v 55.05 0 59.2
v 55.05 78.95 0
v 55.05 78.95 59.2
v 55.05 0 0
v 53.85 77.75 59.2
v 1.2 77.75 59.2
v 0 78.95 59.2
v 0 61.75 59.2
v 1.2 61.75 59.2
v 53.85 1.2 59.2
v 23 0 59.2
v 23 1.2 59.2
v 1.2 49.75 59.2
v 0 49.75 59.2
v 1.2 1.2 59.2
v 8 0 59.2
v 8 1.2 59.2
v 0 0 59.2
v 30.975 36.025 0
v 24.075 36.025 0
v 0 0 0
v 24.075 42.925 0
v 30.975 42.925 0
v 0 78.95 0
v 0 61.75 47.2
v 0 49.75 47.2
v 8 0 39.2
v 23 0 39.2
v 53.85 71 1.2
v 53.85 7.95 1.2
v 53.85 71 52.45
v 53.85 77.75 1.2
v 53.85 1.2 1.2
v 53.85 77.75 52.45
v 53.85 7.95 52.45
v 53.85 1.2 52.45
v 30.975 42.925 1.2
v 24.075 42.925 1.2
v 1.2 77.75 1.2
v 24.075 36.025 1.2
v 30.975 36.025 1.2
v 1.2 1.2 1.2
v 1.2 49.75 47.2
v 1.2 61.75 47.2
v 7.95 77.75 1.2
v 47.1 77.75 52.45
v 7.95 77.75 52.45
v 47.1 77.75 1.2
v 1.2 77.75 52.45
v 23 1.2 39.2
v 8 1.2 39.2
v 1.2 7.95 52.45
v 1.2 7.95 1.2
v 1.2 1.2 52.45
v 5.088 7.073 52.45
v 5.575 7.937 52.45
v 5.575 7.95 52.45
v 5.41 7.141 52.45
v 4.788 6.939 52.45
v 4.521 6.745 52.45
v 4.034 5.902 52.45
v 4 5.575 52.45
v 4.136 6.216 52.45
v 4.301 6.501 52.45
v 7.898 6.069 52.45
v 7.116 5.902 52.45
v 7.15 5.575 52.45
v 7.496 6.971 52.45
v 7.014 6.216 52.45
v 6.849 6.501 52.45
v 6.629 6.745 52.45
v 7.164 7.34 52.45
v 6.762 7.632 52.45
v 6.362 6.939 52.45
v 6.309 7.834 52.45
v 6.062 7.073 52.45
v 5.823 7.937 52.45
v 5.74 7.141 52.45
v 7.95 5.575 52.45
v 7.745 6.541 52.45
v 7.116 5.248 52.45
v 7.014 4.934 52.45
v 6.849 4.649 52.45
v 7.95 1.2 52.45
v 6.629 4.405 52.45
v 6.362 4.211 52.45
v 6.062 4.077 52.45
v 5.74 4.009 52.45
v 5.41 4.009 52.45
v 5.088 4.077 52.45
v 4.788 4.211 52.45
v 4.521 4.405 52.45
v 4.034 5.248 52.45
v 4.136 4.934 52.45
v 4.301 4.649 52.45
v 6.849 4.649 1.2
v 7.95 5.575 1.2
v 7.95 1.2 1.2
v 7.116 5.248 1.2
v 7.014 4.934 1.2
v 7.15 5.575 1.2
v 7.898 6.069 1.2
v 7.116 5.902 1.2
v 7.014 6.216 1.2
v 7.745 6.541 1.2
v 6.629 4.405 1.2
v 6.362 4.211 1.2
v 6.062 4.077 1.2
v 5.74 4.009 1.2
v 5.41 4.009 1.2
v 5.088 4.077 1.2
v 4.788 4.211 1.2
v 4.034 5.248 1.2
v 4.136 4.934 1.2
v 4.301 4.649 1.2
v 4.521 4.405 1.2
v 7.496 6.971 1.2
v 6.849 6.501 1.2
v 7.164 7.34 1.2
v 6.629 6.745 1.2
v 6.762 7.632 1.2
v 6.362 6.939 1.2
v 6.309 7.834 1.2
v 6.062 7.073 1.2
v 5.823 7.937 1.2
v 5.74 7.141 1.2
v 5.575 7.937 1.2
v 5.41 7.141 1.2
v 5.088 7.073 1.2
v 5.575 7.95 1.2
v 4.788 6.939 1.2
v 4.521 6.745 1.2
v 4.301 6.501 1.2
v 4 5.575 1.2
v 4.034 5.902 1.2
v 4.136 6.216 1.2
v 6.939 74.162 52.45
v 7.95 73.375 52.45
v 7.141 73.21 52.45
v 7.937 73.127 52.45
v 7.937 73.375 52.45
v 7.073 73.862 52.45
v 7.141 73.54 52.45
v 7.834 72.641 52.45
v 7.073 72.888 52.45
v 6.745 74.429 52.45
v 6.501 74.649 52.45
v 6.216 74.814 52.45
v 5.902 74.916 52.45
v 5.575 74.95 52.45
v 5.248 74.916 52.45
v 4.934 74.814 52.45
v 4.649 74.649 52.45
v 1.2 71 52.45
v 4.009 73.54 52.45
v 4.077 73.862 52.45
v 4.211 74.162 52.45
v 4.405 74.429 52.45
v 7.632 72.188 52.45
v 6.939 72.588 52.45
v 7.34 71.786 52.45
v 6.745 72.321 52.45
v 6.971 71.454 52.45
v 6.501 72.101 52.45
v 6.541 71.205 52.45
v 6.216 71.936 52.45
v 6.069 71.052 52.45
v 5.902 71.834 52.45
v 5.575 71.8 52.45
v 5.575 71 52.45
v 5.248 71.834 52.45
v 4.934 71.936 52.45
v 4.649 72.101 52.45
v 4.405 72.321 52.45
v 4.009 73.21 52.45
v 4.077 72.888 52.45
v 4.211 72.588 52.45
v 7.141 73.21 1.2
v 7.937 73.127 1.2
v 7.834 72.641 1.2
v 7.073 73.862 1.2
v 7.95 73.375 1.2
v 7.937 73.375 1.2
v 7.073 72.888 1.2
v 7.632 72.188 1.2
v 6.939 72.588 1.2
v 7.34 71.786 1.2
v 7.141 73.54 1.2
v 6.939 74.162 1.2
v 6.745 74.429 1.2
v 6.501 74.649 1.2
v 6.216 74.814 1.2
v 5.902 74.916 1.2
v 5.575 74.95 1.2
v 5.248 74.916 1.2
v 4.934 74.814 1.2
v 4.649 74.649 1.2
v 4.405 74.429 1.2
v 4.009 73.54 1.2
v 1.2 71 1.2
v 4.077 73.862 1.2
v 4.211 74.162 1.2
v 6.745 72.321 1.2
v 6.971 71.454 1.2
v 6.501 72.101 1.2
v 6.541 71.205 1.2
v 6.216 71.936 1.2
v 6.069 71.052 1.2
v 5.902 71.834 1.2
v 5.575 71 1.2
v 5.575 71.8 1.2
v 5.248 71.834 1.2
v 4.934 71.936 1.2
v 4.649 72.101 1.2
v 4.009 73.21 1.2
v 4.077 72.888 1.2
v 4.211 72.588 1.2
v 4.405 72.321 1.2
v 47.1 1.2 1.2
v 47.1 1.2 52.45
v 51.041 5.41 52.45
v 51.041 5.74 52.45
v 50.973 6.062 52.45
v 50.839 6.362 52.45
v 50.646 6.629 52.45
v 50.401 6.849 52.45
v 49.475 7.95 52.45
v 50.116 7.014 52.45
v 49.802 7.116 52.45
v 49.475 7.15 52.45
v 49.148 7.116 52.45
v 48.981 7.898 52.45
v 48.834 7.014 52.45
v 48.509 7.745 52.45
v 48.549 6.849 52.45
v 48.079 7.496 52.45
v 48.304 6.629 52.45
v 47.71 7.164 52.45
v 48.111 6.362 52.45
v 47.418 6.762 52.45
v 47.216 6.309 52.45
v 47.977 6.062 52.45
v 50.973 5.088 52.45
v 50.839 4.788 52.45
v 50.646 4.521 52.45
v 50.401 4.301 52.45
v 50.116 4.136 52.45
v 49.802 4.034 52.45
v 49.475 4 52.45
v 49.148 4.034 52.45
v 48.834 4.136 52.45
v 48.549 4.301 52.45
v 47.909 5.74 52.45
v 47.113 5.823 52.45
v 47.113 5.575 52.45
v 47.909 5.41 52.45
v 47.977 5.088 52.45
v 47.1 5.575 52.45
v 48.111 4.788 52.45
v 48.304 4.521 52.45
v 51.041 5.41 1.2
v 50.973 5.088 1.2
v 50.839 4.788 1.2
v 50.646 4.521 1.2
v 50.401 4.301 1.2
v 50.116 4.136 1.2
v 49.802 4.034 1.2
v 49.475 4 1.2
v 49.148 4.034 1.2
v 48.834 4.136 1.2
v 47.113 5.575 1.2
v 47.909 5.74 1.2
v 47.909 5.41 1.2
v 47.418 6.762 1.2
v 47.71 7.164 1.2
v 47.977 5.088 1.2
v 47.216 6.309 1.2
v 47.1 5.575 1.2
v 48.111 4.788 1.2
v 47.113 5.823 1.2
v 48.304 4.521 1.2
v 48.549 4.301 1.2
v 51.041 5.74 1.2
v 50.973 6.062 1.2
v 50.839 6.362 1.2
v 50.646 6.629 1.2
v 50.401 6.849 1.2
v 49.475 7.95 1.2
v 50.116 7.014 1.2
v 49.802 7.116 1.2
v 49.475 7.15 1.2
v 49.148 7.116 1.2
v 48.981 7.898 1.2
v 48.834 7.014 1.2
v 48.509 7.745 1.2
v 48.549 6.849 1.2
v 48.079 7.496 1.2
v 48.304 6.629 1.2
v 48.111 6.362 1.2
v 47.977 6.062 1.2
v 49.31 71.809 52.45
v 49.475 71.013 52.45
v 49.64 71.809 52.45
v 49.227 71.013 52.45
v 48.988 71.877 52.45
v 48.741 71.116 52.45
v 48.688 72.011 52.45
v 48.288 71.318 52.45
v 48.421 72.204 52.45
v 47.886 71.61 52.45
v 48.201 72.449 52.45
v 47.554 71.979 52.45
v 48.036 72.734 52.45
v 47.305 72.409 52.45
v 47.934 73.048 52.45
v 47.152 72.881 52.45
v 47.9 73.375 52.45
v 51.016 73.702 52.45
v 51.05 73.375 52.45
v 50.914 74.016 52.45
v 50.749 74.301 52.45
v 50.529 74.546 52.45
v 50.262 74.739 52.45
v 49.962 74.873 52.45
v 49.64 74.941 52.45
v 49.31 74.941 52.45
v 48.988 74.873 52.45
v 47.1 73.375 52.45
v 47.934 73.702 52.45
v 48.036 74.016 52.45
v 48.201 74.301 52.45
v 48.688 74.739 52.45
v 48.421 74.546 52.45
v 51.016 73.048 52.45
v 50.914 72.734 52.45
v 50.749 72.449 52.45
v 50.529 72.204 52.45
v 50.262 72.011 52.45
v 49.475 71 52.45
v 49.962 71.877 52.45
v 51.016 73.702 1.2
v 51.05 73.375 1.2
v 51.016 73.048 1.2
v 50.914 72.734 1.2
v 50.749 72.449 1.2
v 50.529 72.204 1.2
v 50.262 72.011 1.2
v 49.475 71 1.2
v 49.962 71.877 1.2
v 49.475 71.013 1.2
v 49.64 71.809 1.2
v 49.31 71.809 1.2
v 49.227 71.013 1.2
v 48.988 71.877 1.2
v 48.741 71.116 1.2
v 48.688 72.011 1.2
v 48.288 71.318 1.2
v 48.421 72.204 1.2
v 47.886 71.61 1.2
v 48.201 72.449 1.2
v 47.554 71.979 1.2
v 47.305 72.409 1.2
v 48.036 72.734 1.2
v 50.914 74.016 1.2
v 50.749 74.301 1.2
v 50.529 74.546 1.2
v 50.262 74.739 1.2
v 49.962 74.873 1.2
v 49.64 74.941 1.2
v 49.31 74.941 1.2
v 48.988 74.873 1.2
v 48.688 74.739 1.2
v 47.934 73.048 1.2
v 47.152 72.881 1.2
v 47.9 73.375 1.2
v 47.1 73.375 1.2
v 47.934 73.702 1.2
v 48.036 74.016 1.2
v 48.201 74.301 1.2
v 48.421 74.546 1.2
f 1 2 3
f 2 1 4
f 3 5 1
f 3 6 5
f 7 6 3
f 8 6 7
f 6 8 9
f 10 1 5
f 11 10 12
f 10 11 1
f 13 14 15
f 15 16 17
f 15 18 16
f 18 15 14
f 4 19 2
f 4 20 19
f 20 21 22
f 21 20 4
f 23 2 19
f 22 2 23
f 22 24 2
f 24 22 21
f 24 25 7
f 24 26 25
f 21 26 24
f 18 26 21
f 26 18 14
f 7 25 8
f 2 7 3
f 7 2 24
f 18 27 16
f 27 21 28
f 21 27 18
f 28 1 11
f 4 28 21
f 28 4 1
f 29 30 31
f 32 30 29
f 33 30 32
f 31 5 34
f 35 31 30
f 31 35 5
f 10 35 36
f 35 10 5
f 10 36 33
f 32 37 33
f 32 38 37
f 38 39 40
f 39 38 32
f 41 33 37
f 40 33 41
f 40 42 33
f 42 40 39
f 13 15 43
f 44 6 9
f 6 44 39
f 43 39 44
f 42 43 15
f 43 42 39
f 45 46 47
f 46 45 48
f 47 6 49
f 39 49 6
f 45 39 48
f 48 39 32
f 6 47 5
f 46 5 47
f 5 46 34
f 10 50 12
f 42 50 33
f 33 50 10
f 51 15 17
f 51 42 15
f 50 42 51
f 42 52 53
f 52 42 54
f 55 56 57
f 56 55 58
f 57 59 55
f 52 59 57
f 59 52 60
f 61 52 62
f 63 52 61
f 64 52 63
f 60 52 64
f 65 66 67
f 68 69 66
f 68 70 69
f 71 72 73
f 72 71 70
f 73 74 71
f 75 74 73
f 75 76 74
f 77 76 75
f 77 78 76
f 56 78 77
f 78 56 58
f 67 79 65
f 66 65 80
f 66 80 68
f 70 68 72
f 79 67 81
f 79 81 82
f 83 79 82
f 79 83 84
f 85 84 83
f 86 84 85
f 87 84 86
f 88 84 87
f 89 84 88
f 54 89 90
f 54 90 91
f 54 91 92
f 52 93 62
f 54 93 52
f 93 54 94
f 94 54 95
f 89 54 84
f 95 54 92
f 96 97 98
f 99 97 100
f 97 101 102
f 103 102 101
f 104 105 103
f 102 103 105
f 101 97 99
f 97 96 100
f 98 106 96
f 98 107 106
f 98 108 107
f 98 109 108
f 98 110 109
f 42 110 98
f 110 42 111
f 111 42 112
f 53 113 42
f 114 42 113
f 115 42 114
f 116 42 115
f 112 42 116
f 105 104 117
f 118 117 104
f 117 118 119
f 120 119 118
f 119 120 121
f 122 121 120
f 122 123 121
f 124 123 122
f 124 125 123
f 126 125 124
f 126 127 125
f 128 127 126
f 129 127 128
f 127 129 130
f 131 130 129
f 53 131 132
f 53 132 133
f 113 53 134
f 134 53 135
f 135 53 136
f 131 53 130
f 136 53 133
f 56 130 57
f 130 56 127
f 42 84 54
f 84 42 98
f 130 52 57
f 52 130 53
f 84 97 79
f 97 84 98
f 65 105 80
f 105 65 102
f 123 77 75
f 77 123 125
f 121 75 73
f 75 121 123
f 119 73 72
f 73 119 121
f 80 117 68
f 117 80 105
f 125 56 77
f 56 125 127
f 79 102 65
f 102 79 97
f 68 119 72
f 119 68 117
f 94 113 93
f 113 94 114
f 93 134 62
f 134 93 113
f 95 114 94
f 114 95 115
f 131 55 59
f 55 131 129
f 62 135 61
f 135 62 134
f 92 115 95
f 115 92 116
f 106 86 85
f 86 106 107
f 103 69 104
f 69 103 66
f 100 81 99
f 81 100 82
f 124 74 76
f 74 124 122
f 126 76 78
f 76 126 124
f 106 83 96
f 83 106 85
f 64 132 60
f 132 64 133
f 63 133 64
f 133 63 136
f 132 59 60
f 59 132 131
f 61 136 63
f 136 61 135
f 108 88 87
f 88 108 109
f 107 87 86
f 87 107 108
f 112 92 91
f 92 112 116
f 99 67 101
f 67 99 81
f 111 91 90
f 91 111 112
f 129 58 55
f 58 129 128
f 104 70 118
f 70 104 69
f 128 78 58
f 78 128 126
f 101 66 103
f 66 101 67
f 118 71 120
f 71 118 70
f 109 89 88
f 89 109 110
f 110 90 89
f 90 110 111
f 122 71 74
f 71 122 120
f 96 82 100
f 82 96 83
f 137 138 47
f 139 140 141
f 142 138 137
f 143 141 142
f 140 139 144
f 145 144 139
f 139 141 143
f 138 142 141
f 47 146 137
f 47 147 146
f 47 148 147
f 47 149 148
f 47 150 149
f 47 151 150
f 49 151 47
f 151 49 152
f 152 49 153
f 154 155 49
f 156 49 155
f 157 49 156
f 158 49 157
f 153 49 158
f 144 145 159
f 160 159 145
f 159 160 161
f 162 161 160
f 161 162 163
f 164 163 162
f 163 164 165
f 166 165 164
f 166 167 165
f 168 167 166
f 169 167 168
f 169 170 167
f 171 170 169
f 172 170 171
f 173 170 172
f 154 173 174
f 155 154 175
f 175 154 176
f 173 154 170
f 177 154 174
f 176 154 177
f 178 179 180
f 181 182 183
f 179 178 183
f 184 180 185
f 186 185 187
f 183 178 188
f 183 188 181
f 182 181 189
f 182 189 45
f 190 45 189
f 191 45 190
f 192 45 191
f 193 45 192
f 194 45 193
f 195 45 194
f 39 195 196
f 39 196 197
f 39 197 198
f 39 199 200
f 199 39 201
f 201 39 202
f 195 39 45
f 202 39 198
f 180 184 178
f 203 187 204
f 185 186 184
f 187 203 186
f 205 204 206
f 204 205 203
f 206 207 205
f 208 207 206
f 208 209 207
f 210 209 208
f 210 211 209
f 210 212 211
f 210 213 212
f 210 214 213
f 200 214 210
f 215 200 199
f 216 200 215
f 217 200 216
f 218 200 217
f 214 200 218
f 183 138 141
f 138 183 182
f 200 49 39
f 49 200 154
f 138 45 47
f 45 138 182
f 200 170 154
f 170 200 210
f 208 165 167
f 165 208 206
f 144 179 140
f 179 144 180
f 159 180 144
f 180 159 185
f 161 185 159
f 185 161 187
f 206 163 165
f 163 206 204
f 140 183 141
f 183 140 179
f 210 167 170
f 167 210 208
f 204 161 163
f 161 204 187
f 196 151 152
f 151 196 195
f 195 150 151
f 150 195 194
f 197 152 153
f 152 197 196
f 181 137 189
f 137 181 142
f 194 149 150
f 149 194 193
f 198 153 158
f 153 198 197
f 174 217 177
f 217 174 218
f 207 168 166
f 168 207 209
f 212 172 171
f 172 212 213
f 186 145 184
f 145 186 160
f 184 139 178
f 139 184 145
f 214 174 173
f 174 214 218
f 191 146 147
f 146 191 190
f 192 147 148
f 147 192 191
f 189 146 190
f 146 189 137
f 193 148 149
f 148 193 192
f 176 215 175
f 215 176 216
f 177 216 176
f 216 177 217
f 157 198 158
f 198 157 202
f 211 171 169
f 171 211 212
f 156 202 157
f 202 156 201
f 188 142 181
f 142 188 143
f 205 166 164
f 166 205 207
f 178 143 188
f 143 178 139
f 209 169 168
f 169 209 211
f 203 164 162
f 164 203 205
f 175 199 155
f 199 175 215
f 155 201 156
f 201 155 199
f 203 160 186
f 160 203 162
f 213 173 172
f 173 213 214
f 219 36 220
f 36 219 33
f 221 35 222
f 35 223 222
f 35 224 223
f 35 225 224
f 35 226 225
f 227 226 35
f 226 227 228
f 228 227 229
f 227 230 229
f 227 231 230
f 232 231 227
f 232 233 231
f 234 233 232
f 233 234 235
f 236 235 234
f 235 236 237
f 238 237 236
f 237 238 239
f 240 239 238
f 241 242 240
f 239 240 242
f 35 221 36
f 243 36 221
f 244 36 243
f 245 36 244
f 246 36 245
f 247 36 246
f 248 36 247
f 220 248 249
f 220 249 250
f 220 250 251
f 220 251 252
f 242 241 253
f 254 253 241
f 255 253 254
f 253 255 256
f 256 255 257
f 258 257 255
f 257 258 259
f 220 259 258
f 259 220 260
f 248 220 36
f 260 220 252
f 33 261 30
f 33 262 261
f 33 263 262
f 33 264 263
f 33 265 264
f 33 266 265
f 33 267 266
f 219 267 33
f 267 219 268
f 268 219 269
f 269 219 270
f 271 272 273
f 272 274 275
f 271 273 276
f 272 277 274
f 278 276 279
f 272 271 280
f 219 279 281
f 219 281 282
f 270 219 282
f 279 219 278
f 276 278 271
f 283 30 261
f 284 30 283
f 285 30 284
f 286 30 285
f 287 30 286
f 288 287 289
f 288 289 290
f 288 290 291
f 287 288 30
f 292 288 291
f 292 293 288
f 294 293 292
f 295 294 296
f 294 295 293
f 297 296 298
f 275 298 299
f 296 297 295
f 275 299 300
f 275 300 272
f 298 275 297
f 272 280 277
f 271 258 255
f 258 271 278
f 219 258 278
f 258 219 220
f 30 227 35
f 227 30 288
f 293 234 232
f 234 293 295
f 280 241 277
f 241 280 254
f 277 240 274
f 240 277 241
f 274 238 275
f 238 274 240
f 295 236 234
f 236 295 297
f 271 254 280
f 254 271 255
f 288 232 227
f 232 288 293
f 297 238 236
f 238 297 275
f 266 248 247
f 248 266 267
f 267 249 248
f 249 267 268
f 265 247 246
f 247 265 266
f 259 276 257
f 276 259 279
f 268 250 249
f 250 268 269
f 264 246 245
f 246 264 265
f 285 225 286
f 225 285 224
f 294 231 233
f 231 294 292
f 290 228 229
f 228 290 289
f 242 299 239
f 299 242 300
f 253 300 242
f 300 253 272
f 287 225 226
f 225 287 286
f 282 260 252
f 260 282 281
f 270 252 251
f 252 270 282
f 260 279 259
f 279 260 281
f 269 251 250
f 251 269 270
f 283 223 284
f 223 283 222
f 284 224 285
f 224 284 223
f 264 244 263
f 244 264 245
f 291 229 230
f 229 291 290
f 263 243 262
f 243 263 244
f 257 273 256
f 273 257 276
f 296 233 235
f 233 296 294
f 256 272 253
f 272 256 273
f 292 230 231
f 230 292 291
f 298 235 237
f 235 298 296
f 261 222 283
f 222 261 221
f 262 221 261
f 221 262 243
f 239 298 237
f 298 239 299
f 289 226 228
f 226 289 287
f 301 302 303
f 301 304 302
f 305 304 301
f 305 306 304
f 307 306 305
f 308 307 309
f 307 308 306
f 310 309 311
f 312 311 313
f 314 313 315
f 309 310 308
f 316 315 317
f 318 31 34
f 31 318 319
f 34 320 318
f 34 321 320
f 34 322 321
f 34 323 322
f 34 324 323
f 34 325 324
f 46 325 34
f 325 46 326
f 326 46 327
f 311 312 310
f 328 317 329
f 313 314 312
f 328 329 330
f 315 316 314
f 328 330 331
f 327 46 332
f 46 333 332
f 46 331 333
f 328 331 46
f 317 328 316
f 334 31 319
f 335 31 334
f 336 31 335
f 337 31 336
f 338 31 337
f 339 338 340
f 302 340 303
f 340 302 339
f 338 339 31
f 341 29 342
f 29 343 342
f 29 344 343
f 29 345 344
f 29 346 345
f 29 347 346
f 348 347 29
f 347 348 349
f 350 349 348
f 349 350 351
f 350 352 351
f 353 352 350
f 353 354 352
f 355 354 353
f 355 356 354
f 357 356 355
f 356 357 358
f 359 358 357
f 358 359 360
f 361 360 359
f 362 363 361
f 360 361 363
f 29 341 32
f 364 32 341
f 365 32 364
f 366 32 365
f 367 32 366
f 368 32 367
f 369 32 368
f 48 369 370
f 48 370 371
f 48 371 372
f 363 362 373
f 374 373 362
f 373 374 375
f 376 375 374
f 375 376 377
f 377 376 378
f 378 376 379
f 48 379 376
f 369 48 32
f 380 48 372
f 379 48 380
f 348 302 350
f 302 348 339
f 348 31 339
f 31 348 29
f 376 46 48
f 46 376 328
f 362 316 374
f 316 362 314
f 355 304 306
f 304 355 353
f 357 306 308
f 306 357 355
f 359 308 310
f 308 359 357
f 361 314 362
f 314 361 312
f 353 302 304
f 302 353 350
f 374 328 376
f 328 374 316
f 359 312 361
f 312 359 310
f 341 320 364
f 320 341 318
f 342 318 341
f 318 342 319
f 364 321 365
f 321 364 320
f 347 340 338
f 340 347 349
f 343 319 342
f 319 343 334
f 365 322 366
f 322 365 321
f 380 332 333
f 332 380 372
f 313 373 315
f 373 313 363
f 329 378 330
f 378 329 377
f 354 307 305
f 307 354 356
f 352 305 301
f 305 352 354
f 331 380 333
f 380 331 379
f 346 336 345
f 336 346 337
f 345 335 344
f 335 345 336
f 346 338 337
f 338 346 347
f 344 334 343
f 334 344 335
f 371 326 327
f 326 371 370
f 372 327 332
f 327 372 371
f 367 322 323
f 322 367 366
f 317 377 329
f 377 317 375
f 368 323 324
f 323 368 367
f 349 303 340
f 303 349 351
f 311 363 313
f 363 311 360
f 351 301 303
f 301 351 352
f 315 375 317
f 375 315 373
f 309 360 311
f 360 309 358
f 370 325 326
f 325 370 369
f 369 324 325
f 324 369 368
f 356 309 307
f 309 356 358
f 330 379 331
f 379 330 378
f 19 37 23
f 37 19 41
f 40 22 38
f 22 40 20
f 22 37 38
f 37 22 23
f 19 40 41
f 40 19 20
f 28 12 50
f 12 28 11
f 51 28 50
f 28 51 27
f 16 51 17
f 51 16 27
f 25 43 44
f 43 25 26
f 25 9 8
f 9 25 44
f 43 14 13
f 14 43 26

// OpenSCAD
//------------------------------------------------
// 2 - body of Xmas tree controller box
//
// author: Alessandro Paganelli 
// e-mail: alessandro.paganelli@gmail.com
// github: https://github.com/allep
// license: GPL-3.0-or-later
// 
// Description
// This is designed to be used with 70x50mm
// prototyping boards.
//
// All sizes are expressed in mm.
//------------------------------------------------

// Set face number to a sufficiently high number.
$fn = 30;

//------------------------------------------------
// Debug mode
// Set DEBUG_MODE to 1 to simulate the actual 
// screw positions, to validate the design.
DEBUG_MODE = 0;

//------------------------------------------------
// Variables

//------------------------------------------------
// Pockets
// Let's increase a little bit pocket sizs in order 
// to allow for easier simulation.
POCKET_TOLERANCE = 0.1;

//------------------------------------------------
// Box

// Inner sizes: outer size will be increased by
// the wall thickness.
Z_LEN = 58;

WALL_THICKNESS = 1.2;
BASE_THICKNESS = 1.2;

CYLINDER_THICKNESS = 0.8;

// For M3 screws it must be 1.5 mm + 5% tolerance
CYLINDER_RADIUS = 1.575;

// tolerances
CYLINDER_GAP = 2.0;

//------------------------------------------------
// Board size
BOARD_THICKNESS = 2.0;
BOARD_HEIGHT = 6.75; // including clearence

// Prototyping board size: 50*75mm
SCREW_DISTANCE_Y = 67.8;
SCREW_DISTANCE_X = 43.9;

// Voltage supply port
X_VSUPPLY_DISP = 8;
Z_VSUPPLY_HEIGHT = 20;
X_VSUPPLY_LEN = 15;

// LED strip port
Y_LED_DISP = 16;
Y_LED_LEN = 12;
Z_LED_HEIGHT = 12;

//------------------------------------------------
// Button

X_BUTTON_LEN = 6.4;
Y_BUTTON_LEN = 6.4;
X_BUTTON_GAP = 0.25;
Y_BUTTON_GAP = 0.25;

//------------------------------------------------
// Screw sizes (M3)

SCREW_RADIUS = 1.5;
Z_SCREW_LEN = 70; // used just for simulation

//------------------------------------------------
// Modules

module corner(radius, height, thickness, gap, position, plane_rotation) {
    ext_r = radius + thickness;
    
    translate(position)
    rotate([0, 0, plane_rotation])
    difference() {
        union() {
            cube([ext_r + gap, ext_r + gap, height]);
            translate([0, - ext_r, 0])
            cube([ext_r + gap, ext_r, height]);
            translate([- ext_r, 0, 0])
            cube([ext_r, ext_r + gap, height]);
            cylinder(h = height, r = ext_r);
        }
        cylinder(h = height + POCKET_TOLERANCE, r = radius);
    }
}

//------------------------------------------------
// Actual script

// First compute sizes

x_len_inner = SCREW_DISTANCE_X + 2*(CYLINDER_RADIUS + CYLINDER_THICKNESS + CYLINDER_GAP);
y_len_inner = SCREW_DISTANCE_Y + 2*(CYLINDER_RADIUS + CYLINDER_THICKNESS + CYLINDER_GAP);
x_len_outer = x_len_inner + 2*WALL_THICKNESS;
y_len_outer = y_len_inner + 2*WALL_THICKNESS;

echo("Computed X len = ", x_len_outer, " and Y len = ", y_len_outer);

// actual box
difference() {
    // the box
    difference() {
        cube([x_len_outer, y_len_outer, Z_LEN + BASE_THICKNESS]);
        translate([WALL_THICKNESS, WALL_THICKNESS, BASE_THICKNESS])
        cube([x_len_inner, y_len_inner, Z_LEN + POCKET_TOLERANCE]);
    }
    // the button hole
    translate([x_len_outer/2 - X_BUTTON_LEN/2 - X_BUTTON_GAP, y_len_outer/2 - Y_BUTTON_LEN/2 - Y_BUTTON_GAP, -POCKET_TOLERANCE])
    cube([X_BUTTON_LEN + 2*X_BUTTON_GAP, Y_BUTTON_LEN + 2*Y_BUTTON_GAP, BASE_THICKNESS + 2*POCKET_TOLERANCE]);
    
    // the voltage supply hole
    translate([X_VSUPPLY_DISP, -POCKET_TOLERANCE, Z_LEN + BASE_THICKNESS - Z_VSUPPLY_HEIGHT])
    cube([X_VSUPPLY_LEN, WALL_THICKNESS + 2*POCKET_TOLERANCE, Z_VSUPPLY_HEIGHT + POCKET_TOLERANCE]);
    
    // the led strip hole
    translate([-POCKET_TOLERANCE, y_len_outer - WALL_THICKNESS - Y_LED_DISP - Y_LED_LEN, Z_LEN + BASE_THICKNESS - Z_LED_HEIGHT])
    cube([WALL_THICKNESS + 2*POCKET_TOLERANCE, Y_LED_LEN, Z_LED_HEIGHT + POCKET_TOLERANCE]);    
}

// screw holes
shift_x1 = CYLINDER_GAP + CYLINDER_THICKNESS + CYLINDER_RADIUS + WALL_THICKNESS;
shift_y1 = CYLINDER_GAP + CYLINDER_THICKNESS + CYLINDER_RADIUS + WALL_THICKNESS;
corner(CYLINDER_RADIUS, Z_LEN-BOARD_HEIGHT, CYLINDER_THICKNESS, CYLINDER_GAP, [shift_x1, shift_y1, BASE_THICKNESS], 180);

shift_x2 = CYLINDER_GAP + CYLINDER_THICKNESS + CYLINDER_RADIUS + WALL_THICKNESS;
shift_y2 = CYLINDER_GAP + CYLINDER_THICKNESS + CYLINDER_RADIUS + SCREW_DISTANCE_Y + WALL_THICKNESS;
corner(CYLINDER_RADIUS, Z_LEN-BOARD_HEIGHT, CYLINDER_THICKNESS, CYLINDER_GAP, [shift_x2, shift_y2, BASE_THICKNESS], 90);

shift_x3 = CYLINDER_GAP + CYLINDER_THICKNESS + CYLINDER_RADIUS + SCREW_DISTANCE_X + WALL_THICKNESS;
shift_y3 = CYLINDER_GAP + CYLINDER_THICKNESS + CYLINDER_RADIUS + WALL_THICKNESS;
corner(CYLINDER_RADIUS, Z_LEN-BOARD_HEIGHT, CYLINDER_THICKNESS, CYLINDER_GAP, [shift_x3, shift_y3, BASE_THICKNESS], 270);

shift_x4 = CYLINDER_GAP + CYLINDER_THICKNESS + CYLINDER_RADIUS + SCREW_DISTANCE_X + WALL_THICKNESS;
shift_y4 = CYLINDER_GAP + CYLINDER_THICKNESS + CYLINDER_RADIUS + SCREW_DISTANCE_Y + WALL_THICKNESS;
corner(CYLINDER_RADIUS, Z_LEN-BOARD_HEIGHT, CYLINDER_THICKNESS, CYLINDER_GAP, [shift_x4, shift_y4, BASE_THICKNESS], 0);

//------------------------------------------------
// Size check
// Draw a simulated version of 4 screws in the right 
// positions, in order to validate the design.

if (DEBUG_MODE == 1) {
    screw1_x = WALL_THICKNESS + CYLINDER_GAP + CYLINDER_THICKNESS + CYLINDER_RADIUS;
    screw1_y = WALL_THICKNESS + CYLINDER_GAP + CYLINDER_THICKNESS + CYLINDER_RADIUS;
    color("red", 0.5)
    translate([screw1_x, screw1_y, 0])
    cylinder(h = Z_SCREW_LEN, r = SCREW_RADIUS);

    screw2_x = WALL_THICKNESS + CYLINDER_GAP + CYLINDER_THICKNESS + CYLINDER_RADIUS;
    screw2_y = WALL_THICKNESS + CYLINDER_GAP + CYLINDER_THICKNESS + CYLINDER_RADIUS + SCREW_DISTANCE_Y;
    color("red", 0.5)
    translate([screw2_x, screw2_y, 0])
    cylinder(h = Z_SCREW_LEN, r = SCREW_RADIUS);

    screw3_x = WALL_THICKNESS + CYLINDER_GAP + CYLINDER_THICKNESS + CYLINDER_RADIUS + SCREW_DISTANCE_X;
    screw3_y = WALL_THICKNESS + CYLINDER_GAP + CYLINDER_THICKNESS + CYLINDER_RADIUS;
    color("red", 0.5)
    translate([screw3_x, screw3_y, 0])
    cylinder(h = Z_SCREW_LEN, r = SCREW_RADIUS);

    screw4_x = WALL_THICKNESS + CYLINDER_GAP + CYLINDER_THICKNESS + CYLINDER_RADIUS + SCREW_DISTANCE_X;
    screw4_y = WALL_THICKNESS + CYLINDER_GAP + CYLINDER_THICKNESS + CYLINDER_RADIUS + SCREW_DISTANCE_Y;
    color("red", 0.5)
    translate([screw4_x, screw4_y, 0])
    cylinder(h = Z_SCREW_LEN, r = SCREW_RADIUS);
}
